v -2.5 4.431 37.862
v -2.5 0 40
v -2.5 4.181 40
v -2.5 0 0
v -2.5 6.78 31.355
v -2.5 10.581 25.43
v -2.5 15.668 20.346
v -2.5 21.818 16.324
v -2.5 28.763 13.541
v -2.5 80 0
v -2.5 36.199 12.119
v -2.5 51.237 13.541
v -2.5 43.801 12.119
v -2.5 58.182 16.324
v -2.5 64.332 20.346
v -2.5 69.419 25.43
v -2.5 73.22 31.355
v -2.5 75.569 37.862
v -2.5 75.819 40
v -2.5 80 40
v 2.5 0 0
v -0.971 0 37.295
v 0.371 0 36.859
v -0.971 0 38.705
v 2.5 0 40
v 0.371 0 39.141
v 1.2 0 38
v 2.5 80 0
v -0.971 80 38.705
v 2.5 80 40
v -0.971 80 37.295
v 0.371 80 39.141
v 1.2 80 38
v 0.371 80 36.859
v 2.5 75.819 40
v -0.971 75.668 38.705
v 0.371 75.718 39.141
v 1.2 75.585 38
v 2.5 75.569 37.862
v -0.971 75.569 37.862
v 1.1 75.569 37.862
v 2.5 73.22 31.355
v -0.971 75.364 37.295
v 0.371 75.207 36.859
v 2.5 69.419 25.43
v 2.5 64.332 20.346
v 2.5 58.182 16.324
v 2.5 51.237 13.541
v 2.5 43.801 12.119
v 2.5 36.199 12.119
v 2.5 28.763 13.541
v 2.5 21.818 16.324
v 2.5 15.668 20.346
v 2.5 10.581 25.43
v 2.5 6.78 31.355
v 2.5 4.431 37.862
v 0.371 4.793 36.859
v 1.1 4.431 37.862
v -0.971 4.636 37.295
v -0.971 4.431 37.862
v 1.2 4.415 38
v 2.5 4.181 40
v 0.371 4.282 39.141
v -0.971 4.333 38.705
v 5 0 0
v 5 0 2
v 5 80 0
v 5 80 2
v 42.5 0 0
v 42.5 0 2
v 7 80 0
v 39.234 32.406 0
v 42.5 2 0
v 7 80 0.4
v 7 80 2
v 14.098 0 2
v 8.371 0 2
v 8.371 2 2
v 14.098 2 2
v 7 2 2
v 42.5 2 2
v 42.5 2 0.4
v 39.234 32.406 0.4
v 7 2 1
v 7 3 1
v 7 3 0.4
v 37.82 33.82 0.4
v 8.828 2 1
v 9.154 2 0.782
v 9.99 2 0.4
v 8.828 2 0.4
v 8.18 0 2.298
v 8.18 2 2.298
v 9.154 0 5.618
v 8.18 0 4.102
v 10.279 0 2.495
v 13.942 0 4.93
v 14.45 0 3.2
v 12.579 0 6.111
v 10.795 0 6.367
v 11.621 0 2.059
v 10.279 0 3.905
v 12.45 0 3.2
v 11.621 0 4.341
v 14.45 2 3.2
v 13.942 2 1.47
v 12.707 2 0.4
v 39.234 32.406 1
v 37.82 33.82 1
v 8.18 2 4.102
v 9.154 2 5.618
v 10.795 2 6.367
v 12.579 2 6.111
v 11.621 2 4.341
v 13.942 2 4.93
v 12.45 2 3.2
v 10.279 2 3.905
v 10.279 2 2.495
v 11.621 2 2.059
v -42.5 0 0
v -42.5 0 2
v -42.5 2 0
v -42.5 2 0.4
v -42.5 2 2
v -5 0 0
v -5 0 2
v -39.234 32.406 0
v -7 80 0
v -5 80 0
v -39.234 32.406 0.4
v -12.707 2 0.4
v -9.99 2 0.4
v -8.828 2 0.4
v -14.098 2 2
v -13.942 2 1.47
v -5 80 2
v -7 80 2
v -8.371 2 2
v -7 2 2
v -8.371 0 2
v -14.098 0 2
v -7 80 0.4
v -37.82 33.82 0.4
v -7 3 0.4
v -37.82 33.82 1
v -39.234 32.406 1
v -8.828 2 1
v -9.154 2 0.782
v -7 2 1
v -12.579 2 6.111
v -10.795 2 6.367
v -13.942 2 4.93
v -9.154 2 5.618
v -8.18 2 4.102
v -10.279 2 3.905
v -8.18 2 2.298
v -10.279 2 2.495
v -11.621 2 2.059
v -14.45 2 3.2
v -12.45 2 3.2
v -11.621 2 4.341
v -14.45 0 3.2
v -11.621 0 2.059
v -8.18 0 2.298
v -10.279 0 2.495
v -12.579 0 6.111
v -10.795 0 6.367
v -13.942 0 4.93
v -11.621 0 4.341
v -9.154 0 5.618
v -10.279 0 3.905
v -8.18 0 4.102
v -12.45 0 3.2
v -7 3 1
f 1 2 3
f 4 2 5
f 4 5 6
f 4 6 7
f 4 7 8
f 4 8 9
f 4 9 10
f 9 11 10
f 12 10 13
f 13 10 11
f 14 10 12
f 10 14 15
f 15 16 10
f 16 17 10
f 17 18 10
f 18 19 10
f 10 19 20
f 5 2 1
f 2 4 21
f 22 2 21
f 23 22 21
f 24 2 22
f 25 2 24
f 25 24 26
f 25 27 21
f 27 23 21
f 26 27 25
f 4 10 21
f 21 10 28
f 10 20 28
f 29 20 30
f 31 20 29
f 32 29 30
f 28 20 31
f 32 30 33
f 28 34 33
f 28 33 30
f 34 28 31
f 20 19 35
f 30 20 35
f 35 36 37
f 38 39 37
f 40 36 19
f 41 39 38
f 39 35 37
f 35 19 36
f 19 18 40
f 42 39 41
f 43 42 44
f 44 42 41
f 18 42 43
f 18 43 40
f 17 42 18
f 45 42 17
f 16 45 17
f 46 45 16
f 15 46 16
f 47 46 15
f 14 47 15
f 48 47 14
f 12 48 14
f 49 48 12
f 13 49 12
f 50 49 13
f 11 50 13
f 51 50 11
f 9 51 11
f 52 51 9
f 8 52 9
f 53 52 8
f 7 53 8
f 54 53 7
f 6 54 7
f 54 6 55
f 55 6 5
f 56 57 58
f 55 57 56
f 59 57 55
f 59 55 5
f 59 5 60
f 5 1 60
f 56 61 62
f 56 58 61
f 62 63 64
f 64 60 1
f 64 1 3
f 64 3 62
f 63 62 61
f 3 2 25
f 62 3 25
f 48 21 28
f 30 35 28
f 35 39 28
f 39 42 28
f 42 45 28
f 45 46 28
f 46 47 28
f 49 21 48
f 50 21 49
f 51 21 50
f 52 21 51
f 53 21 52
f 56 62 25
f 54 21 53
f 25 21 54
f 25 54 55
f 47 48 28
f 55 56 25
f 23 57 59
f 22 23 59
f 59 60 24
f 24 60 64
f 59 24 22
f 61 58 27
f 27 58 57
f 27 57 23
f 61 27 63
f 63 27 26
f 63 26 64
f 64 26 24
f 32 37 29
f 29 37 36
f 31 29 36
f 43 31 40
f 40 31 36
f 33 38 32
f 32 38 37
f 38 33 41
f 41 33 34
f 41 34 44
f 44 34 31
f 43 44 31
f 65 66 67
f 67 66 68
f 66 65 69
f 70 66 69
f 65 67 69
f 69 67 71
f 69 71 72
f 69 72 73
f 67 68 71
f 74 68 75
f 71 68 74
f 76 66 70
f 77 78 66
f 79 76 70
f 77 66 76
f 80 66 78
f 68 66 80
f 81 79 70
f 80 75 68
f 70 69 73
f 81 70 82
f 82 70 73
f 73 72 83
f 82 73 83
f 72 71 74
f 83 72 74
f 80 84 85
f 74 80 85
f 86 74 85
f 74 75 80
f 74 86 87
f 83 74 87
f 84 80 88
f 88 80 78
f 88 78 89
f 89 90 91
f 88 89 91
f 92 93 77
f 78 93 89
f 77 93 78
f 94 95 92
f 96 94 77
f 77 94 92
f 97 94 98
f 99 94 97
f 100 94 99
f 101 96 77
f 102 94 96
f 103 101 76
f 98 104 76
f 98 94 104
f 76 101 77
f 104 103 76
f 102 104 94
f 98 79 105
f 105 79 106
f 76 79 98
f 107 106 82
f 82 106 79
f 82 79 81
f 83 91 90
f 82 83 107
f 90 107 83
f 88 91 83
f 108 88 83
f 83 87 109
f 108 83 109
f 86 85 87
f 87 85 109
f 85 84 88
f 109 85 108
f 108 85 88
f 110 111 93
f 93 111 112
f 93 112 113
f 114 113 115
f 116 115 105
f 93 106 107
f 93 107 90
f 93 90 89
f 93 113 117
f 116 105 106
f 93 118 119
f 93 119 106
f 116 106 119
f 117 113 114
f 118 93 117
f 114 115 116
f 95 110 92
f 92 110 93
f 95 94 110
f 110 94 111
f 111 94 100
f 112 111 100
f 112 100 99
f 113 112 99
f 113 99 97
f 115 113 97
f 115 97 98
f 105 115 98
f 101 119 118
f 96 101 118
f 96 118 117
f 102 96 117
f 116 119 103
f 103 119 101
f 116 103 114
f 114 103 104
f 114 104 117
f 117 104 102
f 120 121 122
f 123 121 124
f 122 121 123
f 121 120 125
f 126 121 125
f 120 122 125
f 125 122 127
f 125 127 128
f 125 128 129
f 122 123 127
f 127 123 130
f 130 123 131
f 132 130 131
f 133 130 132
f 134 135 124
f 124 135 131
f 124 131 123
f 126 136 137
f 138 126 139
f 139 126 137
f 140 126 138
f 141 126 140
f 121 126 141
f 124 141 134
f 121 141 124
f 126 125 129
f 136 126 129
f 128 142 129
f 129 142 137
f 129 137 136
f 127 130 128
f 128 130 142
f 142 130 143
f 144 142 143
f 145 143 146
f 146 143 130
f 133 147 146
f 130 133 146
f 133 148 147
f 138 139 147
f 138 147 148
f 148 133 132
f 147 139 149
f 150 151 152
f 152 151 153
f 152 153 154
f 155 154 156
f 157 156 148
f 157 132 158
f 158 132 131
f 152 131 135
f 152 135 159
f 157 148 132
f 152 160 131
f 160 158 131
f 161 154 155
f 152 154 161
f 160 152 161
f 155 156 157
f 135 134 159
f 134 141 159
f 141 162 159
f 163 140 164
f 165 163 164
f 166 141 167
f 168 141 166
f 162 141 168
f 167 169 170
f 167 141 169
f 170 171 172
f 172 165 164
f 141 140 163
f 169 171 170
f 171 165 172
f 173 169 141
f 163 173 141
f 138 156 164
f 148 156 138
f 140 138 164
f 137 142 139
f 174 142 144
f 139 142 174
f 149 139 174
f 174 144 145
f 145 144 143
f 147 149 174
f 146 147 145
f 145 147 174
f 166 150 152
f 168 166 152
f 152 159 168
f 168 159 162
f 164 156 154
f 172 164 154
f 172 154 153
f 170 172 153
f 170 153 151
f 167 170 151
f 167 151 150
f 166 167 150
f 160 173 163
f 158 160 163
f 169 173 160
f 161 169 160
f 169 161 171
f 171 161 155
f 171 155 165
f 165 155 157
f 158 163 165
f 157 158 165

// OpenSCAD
/*
 * Copyright (C) 2013 Peter Withers
 *
 * This program is free software; you can redistribute it and/or
 * modify it under the terms of the GNU General Public License
 * as published by the Free Software Foundation; either version 2
 * of the License, or (at your option) any later version.
 *
 * This program is distributed in the hope that it will be useful,
 * but WITHOUT ANY WARRANTY; without even the implied warranty of
 * MERCHANTABILITY or FITNESS FOR A PARTICULAR PURPOSE.  See the
 * GNU General Public License for more details.
 *
 * You should have received a copy of the GNU General Public License
 * along with this program; if not, write to the Free Software
 * Foundation, Inc., 59 Temple Place - Suite 330, Boston, MA  02111-1307, USA.
 */

webbingThickness = 0.4;
wingSpan = 80;
fuselageLength = 80;
fuselageWidth = 5;
fuselageHeight = 40;
fingerThickness = 2;
axilDiameter = 1.2;
wingLength = (wingSpan - fuselageWidth) / 2;

module makeWing() {
    translate([fuselageWidth,0,0]) {
        cube([wingLength, fingerThickness, fingerThickness]);
        cube([fingerThickness, fuselageLength, fingerThickness]);
		 translate([fingerThickness/2,fingerThickness,0])rotate([0,0,-45]) cube([fingerThickness, wingLength*1.2, fingerThickness/2]);
    }
    // make the loop
    translate([wingLength*0.3,fingerThickness/2,fingerThickness+axilDiameter]){
        //translate([0,(-fuselageHeight/2)+fingerThickness,0])
        rotate([-90,0,0])difference(){
            cylinder(h=fingerThickness,r=axilDiameter+fingerThickness,center=true);
            cylinder(h=fingerThickness*2,r=axilDiameter,center=true);
        }
    }
}

module makeWebbing(){
    intersection(){
        translate([-fuselageLength,0,0]) cube([fuselageLength*2, fuselageLength, webbingThickness]);
        union() {
            hull() makeWing();
            hull() scale([-1,1,1]) makeWing();
        }
    }
}

module makeFuselage(){
    translate([0,fuselageLength/2,fuselageHeight/2]){
        difference(){
            cube([fuselageWidth, fuselageLength, fuselageHeight], center=true);
            union()rotate([-90,0,0]){
                // bore the hole for the axil
                translate([0,(-fuselageHeight/2)+fingerThickness,0])cylinder(h=fuselageLength*2,r=axilDiameter,center=true);
                // make an opening for the rubber band to be placed
                rotate([0,90,0])translate([0,(-fuselageHeight/1.5)+fingerThickness,0])scale([1,(fuselageHeight/fuselageLength)*1.8,1])cylinder(h=fuselageWidth*2, r=fuselageLength/2.2,center=true);
            }
        }
    }
}

module makeOrnithopter(){
	makeFuselage();
        makeWebbing();
	makeWing();
	scale([-1,1,1]) makeWing();
}

makeOrnithopter();
